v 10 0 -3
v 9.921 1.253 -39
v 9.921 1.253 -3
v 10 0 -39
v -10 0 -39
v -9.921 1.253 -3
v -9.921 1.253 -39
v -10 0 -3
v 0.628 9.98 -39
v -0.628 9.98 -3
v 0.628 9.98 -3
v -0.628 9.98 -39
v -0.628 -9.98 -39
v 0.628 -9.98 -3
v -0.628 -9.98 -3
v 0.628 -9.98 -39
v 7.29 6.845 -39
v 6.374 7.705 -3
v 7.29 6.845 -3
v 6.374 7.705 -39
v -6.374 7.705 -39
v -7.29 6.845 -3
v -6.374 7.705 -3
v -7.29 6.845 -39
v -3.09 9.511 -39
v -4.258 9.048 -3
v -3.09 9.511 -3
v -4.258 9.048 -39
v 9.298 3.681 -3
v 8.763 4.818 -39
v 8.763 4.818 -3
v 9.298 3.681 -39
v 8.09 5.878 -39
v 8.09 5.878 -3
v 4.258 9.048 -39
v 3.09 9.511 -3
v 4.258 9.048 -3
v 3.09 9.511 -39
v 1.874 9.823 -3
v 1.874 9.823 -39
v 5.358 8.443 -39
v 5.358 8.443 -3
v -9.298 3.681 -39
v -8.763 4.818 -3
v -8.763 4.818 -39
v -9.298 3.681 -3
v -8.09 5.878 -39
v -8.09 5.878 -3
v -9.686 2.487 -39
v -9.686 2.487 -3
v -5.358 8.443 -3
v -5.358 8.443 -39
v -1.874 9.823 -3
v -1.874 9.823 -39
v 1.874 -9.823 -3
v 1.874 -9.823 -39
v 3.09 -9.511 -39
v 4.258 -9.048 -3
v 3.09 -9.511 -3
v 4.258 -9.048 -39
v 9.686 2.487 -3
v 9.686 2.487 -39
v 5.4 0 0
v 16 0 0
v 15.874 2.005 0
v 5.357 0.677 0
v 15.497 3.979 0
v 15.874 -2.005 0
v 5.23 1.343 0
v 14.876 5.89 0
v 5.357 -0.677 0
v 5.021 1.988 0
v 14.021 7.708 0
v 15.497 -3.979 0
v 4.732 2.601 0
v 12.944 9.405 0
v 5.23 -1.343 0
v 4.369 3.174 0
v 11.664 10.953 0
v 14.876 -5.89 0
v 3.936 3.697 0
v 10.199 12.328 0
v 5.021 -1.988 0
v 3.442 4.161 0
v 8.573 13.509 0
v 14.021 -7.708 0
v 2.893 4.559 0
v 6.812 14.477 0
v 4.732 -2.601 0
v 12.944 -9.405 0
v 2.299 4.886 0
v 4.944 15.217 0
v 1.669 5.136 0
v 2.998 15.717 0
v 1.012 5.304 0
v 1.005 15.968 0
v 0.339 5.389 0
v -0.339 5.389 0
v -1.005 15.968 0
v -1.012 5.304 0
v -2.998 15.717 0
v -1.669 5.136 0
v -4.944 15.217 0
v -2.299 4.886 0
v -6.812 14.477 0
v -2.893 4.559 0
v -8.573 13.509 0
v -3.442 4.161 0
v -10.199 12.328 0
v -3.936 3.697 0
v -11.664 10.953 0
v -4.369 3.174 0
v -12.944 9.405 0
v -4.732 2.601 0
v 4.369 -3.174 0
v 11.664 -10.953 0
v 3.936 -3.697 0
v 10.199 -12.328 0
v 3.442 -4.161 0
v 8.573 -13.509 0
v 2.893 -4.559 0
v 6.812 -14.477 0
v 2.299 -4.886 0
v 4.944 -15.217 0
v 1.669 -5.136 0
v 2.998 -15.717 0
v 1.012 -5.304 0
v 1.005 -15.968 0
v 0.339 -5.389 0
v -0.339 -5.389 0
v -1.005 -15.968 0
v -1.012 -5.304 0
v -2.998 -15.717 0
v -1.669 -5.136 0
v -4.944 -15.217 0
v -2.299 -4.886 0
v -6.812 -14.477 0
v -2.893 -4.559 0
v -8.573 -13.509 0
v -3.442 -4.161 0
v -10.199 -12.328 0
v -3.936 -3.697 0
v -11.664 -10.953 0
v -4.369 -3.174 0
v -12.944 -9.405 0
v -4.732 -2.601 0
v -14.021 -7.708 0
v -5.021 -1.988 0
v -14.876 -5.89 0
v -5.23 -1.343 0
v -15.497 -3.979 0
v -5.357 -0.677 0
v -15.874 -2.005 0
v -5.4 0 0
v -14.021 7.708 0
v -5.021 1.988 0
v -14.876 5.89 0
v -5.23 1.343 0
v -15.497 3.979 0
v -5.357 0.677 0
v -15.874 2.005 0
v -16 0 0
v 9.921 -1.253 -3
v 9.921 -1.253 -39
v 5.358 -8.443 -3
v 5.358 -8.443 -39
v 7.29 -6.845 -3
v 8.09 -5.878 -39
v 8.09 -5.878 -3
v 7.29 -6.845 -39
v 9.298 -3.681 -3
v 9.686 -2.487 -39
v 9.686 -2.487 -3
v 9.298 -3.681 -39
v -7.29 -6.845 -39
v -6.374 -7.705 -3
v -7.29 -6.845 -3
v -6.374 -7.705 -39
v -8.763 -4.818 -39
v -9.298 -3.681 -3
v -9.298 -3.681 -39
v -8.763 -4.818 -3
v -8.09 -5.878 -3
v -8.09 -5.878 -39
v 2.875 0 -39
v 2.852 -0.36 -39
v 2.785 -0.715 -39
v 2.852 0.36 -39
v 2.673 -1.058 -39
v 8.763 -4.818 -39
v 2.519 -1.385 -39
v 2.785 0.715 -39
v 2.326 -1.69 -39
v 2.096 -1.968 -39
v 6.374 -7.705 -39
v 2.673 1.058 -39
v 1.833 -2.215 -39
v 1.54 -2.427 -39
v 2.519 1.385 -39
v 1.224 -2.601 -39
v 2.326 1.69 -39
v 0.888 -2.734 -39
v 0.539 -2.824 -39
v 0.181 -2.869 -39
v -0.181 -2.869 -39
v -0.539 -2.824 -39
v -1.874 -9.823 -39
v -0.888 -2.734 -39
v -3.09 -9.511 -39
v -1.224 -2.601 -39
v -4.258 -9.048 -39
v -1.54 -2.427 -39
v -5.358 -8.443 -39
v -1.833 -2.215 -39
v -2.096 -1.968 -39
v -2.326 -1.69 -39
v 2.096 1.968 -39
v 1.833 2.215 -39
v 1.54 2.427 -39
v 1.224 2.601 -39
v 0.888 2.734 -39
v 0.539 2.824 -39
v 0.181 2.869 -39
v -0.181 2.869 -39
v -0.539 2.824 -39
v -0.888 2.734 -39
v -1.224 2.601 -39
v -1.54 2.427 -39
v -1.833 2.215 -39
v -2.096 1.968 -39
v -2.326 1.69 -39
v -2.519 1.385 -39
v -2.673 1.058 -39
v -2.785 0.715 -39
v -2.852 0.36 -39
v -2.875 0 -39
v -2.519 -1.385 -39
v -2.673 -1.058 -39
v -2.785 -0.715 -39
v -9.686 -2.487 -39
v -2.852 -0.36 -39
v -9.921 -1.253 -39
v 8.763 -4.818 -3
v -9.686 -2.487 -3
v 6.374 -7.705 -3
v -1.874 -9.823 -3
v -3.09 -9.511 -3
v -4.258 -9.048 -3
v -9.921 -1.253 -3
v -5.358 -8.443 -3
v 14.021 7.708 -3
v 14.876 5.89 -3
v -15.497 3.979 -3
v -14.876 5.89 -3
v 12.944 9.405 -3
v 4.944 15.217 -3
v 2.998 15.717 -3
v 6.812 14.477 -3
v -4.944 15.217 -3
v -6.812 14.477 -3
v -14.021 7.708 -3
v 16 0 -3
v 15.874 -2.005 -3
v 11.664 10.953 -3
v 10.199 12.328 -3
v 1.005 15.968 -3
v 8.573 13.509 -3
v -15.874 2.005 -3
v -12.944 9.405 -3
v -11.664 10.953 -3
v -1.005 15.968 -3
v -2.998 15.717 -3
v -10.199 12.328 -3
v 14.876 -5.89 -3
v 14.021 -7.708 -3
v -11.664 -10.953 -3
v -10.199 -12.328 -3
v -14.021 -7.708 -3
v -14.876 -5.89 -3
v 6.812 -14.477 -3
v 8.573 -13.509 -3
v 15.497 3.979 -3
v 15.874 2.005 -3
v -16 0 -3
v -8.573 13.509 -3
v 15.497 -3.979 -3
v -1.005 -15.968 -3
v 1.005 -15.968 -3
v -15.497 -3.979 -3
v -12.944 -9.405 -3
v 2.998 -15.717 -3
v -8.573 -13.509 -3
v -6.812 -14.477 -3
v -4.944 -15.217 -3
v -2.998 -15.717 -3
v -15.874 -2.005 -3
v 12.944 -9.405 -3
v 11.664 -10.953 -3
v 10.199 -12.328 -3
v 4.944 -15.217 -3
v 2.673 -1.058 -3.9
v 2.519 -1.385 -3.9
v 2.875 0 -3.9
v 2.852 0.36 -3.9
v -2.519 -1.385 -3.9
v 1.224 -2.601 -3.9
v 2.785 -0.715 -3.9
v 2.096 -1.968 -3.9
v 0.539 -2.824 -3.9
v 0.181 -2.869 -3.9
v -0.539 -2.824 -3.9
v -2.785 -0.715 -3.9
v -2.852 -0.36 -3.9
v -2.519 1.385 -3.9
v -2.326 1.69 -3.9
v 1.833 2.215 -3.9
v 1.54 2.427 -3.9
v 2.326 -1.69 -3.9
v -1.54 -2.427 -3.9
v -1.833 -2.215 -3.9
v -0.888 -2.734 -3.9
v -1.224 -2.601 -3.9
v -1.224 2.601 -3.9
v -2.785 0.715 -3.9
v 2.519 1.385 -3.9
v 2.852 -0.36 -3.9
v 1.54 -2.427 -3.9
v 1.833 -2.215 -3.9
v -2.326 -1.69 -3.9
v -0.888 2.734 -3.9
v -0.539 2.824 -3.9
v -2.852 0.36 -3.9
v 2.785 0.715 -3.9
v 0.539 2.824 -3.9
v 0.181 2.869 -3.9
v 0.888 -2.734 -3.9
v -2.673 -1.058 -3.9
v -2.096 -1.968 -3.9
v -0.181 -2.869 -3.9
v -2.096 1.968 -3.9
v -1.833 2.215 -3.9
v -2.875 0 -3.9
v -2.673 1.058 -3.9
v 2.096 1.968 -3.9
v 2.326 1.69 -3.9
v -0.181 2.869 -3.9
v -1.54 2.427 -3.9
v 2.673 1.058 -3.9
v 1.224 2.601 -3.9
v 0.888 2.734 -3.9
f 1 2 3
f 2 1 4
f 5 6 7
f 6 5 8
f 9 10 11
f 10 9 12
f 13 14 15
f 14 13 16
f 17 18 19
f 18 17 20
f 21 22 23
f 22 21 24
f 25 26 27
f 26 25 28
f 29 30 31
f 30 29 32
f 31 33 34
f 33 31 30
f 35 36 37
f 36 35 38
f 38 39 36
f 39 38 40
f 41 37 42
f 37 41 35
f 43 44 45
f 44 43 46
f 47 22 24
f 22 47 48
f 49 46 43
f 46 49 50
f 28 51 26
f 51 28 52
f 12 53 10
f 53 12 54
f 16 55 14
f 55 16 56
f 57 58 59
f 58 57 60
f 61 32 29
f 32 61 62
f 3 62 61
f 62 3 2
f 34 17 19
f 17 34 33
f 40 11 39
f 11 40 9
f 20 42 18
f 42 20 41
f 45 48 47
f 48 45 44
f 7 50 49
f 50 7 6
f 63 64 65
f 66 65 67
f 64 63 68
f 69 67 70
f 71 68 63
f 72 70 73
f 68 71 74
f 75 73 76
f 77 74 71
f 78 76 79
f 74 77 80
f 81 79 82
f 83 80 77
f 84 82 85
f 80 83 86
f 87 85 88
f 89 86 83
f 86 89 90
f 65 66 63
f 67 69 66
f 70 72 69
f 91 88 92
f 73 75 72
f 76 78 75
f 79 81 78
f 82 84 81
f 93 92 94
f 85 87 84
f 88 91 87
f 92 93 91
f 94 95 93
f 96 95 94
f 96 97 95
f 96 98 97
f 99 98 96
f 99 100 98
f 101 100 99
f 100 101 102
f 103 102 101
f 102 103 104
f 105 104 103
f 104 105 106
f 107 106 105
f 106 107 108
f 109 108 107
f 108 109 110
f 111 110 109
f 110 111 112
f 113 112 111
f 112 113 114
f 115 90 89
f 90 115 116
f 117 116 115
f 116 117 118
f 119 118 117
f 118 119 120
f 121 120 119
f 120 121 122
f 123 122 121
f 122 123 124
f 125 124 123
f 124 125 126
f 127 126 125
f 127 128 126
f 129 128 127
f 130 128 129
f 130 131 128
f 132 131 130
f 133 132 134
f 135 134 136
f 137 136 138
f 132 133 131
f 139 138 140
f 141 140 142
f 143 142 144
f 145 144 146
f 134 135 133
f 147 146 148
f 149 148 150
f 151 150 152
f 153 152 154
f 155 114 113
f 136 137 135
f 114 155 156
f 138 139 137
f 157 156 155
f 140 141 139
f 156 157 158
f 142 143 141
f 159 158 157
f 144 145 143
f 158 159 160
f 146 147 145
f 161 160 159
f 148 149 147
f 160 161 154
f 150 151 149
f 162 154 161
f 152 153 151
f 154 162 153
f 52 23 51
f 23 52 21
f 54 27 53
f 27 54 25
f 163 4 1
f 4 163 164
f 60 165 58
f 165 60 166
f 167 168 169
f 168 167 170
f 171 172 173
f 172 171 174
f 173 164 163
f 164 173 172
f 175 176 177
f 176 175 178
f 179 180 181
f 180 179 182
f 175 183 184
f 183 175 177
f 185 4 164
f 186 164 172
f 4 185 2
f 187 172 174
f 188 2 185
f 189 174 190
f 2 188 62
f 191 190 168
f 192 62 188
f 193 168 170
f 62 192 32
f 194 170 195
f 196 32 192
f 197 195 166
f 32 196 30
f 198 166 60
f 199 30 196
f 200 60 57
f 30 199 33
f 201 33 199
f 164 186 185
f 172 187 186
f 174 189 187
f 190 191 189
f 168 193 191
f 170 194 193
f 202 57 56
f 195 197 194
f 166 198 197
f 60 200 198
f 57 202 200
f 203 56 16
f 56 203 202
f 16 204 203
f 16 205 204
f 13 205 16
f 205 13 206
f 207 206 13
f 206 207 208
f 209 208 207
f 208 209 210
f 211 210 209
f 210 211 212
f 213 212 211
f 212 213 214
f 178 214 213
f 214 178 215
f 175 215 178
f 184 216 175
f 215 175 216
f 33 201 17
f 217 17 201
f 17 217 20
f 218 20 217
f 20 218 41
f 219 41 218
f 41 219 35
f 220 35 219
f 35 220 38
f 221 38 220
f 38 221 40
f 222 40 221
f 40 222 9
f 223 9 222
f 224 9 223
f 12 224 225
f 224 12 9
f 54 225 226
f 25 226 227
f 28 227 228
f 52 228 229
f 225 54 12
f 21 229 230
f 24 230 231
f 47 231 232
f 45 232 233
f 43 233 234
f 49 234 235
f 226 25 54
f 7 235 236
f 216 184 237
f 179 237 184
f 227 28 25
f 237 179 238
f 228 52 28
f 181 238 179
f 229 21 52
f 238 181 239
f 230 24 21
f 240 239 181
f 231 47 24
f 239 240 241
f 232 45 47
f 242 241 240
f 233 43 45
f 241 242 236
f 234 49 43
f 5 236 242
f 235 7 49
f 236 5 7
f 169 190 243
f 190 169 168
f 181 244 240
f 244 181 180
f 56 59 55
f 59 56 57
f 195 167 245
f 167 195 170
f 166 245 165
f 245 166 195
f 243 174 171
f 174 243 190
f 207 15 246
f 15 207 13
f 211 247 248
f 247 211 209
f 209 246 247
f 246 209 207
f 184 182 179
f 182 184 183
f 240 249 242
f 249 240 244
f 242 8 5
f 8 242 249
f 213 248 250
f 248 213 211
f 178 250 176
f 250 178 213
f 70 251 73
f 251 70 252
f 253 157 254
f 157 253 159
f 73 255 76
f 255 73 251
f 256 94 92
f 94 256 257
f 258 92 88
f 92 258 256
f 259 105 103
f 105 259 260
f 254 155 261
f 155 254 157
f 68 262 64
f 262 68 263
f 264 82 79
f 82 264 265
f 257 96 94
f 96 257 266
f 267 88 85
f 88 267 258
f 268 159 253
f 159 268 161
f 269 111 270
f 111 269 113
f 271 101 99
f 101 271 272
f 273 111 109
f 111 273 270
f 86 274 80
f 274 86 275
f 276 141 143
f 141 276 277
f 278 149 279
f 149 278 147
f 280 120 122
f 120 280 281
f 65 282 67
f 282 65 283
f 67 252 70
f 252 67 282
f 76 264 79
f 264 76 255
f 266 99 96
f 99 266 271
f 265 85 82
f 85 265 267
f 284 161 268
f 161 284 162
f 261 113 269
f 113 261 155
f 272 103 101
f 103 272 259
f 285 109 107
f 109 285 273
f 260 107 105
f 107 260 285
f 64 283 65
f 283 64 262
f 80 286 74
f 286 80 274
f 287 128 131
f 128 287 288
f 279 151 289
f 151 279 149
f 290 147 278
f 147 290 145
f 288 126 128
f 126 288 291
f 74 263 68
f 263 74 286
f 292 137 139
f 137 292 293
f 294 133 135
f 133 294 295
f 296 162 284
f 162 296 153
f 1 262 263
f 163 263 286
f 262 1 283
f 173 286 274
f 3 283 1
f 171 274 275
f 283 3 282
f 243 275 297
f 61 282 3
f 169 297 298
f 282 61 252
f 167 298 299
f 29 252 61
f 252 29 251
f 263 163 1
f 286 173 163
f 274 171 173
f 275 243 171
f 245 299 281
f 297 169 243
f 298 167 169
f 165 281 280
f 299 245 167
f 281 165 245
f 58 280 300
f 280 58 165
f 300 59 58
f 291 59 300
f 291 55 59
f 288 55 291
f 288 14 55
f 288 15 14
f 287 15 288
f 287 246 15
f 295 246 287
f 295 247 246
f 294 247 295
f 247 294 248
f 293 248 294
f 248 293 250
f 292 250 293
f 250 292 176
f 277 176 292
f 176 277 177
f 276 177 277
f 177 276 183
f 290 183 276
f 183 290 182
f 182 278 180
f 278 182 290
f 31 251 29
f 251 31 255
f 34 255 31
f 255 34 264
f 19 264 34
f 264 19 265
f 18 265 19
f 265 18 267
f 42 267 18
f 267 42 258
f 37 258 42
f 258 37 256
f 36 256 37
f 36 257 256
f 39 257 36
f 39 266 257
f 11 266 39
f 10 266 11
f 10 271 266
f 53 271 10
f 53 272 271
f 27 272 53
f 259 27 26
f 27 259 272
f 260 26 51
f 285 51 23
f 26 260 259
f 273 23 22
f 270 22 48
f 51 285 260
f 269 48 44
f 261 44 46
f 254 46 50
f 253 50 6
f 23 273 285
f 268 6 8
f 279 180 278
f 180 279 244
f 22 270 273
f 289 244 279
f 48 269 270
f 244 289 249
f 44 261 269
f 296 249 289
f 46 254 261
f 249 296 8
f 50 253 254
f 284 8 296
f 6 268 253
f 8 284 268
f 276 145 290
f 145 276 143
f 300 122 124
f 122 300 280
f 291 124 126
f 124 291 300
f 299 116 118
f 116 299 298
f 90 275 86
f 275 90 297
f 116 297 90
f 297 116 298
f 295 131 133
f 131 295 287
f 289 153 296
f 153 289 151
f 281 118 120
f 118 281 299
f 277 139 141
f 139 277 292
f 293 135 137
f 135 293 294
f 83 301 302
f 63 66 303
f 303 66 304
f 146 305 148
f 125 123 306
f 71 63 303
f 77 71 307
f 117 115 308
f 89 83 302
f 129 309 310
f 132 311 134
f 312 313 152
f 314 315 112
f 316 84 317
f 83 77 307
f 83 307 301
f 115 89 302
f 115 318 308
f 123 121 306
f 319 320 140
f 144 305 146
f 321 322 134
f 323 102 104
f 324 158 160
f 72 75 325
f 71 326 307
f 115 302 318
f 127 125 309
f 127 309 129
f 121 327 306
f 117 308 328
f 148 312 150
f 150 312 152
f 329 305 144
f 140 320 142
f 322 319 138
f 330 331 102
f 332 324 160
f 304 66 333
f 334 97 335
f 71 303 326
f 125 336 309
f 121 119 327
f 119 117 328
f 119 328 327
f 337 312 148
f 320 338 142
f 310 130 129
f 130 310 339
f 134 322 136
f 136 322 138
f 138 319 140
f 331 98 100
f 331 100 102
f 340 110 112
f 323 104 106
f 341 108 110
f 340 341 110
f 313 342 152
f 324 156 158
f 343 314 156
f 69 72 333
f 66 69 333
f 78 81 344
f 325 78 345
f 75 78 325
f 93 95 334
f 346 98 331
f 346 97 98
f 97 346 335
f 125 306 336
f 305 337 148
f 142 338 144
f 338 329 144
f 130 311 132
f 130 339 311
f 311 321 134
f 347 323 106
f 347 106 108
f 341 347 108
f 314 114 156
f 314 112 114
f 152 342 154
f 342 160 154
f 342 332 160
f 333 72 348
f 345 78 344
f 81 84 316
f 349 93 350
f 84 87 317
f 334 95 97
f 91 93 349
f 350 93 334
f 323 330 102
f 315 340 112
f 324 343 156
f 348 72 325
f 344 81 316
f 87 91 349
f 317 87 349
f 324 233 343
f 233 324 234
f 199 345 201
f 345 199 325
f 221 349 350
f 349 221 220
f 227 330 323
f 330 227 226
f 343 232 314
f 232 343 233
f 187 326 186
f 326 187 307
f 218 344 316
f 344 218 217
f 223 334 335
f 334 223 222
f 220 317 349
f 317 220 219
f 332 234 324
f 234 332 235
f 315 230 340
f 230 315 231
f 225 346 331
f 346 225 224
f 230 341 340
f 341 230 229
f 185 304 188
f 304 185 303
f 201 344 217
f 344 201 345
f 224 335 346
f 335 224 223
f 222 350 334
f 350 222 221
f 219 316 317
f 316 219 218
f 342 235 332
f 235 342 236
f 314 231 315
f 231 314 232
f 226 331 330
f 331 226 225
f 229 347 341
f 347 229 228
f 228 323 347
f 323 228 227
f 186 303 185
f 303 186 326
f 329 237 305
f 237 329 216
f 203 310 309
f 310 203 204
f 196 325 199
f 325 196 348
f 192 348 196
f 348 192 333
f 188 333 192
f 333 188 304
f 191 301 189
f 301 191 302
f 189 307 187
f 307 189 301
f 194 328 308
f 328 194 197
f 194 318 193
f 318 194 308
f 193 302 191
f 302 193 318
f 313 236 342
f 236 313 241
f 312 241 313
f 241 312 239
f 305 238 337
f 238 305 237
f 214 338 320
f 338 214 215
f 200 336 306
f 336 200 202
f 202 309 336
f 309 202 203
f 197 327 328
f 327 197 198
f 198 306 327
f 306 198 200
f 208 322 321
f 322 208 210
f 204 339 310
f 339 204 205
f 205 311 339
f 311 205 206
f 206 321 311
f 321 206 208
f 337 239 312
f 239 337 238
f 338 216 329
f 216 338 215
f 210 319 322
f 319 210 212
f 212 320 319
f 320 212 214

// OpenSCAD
$fn = 50;


difference() {
	union() {
		translate(v = [0, 0, -39.0000000000]) {
			cylinder(h = 39, r = 10.0000000000);
		}
		translate(v = [0, 0, -3.0000000000]) {
			cylinder(h = 3, r = 16.0000000000);
		}
	}
	union() {
		translate(v = [0, 0, 0]) {
			rotate(a = [0, 0, 0]) {
				difference() {
					union() {
						#translate(v = [0, 0, -39.0000000000]) {
							cylinder(h = 39, r = 2.6000000000);
						}
						#translate(v = [0, 0, -3.9000000000]) {
							cylinder(h = 3.9000000000, r1 = 2.8750000000, r2 = 5.4000000000);
						}
						#translate(v = [0, 0, -39.0000000000]) {
							cylinder(h = 39, r = 2.8750000000);
						}
						#translate(v = [0, 0, -39.0000000000]) {
							cylinder(h = 39, r = 2.6000000000);
						}
					}
					union();
				}
			}
		}
	}
}
